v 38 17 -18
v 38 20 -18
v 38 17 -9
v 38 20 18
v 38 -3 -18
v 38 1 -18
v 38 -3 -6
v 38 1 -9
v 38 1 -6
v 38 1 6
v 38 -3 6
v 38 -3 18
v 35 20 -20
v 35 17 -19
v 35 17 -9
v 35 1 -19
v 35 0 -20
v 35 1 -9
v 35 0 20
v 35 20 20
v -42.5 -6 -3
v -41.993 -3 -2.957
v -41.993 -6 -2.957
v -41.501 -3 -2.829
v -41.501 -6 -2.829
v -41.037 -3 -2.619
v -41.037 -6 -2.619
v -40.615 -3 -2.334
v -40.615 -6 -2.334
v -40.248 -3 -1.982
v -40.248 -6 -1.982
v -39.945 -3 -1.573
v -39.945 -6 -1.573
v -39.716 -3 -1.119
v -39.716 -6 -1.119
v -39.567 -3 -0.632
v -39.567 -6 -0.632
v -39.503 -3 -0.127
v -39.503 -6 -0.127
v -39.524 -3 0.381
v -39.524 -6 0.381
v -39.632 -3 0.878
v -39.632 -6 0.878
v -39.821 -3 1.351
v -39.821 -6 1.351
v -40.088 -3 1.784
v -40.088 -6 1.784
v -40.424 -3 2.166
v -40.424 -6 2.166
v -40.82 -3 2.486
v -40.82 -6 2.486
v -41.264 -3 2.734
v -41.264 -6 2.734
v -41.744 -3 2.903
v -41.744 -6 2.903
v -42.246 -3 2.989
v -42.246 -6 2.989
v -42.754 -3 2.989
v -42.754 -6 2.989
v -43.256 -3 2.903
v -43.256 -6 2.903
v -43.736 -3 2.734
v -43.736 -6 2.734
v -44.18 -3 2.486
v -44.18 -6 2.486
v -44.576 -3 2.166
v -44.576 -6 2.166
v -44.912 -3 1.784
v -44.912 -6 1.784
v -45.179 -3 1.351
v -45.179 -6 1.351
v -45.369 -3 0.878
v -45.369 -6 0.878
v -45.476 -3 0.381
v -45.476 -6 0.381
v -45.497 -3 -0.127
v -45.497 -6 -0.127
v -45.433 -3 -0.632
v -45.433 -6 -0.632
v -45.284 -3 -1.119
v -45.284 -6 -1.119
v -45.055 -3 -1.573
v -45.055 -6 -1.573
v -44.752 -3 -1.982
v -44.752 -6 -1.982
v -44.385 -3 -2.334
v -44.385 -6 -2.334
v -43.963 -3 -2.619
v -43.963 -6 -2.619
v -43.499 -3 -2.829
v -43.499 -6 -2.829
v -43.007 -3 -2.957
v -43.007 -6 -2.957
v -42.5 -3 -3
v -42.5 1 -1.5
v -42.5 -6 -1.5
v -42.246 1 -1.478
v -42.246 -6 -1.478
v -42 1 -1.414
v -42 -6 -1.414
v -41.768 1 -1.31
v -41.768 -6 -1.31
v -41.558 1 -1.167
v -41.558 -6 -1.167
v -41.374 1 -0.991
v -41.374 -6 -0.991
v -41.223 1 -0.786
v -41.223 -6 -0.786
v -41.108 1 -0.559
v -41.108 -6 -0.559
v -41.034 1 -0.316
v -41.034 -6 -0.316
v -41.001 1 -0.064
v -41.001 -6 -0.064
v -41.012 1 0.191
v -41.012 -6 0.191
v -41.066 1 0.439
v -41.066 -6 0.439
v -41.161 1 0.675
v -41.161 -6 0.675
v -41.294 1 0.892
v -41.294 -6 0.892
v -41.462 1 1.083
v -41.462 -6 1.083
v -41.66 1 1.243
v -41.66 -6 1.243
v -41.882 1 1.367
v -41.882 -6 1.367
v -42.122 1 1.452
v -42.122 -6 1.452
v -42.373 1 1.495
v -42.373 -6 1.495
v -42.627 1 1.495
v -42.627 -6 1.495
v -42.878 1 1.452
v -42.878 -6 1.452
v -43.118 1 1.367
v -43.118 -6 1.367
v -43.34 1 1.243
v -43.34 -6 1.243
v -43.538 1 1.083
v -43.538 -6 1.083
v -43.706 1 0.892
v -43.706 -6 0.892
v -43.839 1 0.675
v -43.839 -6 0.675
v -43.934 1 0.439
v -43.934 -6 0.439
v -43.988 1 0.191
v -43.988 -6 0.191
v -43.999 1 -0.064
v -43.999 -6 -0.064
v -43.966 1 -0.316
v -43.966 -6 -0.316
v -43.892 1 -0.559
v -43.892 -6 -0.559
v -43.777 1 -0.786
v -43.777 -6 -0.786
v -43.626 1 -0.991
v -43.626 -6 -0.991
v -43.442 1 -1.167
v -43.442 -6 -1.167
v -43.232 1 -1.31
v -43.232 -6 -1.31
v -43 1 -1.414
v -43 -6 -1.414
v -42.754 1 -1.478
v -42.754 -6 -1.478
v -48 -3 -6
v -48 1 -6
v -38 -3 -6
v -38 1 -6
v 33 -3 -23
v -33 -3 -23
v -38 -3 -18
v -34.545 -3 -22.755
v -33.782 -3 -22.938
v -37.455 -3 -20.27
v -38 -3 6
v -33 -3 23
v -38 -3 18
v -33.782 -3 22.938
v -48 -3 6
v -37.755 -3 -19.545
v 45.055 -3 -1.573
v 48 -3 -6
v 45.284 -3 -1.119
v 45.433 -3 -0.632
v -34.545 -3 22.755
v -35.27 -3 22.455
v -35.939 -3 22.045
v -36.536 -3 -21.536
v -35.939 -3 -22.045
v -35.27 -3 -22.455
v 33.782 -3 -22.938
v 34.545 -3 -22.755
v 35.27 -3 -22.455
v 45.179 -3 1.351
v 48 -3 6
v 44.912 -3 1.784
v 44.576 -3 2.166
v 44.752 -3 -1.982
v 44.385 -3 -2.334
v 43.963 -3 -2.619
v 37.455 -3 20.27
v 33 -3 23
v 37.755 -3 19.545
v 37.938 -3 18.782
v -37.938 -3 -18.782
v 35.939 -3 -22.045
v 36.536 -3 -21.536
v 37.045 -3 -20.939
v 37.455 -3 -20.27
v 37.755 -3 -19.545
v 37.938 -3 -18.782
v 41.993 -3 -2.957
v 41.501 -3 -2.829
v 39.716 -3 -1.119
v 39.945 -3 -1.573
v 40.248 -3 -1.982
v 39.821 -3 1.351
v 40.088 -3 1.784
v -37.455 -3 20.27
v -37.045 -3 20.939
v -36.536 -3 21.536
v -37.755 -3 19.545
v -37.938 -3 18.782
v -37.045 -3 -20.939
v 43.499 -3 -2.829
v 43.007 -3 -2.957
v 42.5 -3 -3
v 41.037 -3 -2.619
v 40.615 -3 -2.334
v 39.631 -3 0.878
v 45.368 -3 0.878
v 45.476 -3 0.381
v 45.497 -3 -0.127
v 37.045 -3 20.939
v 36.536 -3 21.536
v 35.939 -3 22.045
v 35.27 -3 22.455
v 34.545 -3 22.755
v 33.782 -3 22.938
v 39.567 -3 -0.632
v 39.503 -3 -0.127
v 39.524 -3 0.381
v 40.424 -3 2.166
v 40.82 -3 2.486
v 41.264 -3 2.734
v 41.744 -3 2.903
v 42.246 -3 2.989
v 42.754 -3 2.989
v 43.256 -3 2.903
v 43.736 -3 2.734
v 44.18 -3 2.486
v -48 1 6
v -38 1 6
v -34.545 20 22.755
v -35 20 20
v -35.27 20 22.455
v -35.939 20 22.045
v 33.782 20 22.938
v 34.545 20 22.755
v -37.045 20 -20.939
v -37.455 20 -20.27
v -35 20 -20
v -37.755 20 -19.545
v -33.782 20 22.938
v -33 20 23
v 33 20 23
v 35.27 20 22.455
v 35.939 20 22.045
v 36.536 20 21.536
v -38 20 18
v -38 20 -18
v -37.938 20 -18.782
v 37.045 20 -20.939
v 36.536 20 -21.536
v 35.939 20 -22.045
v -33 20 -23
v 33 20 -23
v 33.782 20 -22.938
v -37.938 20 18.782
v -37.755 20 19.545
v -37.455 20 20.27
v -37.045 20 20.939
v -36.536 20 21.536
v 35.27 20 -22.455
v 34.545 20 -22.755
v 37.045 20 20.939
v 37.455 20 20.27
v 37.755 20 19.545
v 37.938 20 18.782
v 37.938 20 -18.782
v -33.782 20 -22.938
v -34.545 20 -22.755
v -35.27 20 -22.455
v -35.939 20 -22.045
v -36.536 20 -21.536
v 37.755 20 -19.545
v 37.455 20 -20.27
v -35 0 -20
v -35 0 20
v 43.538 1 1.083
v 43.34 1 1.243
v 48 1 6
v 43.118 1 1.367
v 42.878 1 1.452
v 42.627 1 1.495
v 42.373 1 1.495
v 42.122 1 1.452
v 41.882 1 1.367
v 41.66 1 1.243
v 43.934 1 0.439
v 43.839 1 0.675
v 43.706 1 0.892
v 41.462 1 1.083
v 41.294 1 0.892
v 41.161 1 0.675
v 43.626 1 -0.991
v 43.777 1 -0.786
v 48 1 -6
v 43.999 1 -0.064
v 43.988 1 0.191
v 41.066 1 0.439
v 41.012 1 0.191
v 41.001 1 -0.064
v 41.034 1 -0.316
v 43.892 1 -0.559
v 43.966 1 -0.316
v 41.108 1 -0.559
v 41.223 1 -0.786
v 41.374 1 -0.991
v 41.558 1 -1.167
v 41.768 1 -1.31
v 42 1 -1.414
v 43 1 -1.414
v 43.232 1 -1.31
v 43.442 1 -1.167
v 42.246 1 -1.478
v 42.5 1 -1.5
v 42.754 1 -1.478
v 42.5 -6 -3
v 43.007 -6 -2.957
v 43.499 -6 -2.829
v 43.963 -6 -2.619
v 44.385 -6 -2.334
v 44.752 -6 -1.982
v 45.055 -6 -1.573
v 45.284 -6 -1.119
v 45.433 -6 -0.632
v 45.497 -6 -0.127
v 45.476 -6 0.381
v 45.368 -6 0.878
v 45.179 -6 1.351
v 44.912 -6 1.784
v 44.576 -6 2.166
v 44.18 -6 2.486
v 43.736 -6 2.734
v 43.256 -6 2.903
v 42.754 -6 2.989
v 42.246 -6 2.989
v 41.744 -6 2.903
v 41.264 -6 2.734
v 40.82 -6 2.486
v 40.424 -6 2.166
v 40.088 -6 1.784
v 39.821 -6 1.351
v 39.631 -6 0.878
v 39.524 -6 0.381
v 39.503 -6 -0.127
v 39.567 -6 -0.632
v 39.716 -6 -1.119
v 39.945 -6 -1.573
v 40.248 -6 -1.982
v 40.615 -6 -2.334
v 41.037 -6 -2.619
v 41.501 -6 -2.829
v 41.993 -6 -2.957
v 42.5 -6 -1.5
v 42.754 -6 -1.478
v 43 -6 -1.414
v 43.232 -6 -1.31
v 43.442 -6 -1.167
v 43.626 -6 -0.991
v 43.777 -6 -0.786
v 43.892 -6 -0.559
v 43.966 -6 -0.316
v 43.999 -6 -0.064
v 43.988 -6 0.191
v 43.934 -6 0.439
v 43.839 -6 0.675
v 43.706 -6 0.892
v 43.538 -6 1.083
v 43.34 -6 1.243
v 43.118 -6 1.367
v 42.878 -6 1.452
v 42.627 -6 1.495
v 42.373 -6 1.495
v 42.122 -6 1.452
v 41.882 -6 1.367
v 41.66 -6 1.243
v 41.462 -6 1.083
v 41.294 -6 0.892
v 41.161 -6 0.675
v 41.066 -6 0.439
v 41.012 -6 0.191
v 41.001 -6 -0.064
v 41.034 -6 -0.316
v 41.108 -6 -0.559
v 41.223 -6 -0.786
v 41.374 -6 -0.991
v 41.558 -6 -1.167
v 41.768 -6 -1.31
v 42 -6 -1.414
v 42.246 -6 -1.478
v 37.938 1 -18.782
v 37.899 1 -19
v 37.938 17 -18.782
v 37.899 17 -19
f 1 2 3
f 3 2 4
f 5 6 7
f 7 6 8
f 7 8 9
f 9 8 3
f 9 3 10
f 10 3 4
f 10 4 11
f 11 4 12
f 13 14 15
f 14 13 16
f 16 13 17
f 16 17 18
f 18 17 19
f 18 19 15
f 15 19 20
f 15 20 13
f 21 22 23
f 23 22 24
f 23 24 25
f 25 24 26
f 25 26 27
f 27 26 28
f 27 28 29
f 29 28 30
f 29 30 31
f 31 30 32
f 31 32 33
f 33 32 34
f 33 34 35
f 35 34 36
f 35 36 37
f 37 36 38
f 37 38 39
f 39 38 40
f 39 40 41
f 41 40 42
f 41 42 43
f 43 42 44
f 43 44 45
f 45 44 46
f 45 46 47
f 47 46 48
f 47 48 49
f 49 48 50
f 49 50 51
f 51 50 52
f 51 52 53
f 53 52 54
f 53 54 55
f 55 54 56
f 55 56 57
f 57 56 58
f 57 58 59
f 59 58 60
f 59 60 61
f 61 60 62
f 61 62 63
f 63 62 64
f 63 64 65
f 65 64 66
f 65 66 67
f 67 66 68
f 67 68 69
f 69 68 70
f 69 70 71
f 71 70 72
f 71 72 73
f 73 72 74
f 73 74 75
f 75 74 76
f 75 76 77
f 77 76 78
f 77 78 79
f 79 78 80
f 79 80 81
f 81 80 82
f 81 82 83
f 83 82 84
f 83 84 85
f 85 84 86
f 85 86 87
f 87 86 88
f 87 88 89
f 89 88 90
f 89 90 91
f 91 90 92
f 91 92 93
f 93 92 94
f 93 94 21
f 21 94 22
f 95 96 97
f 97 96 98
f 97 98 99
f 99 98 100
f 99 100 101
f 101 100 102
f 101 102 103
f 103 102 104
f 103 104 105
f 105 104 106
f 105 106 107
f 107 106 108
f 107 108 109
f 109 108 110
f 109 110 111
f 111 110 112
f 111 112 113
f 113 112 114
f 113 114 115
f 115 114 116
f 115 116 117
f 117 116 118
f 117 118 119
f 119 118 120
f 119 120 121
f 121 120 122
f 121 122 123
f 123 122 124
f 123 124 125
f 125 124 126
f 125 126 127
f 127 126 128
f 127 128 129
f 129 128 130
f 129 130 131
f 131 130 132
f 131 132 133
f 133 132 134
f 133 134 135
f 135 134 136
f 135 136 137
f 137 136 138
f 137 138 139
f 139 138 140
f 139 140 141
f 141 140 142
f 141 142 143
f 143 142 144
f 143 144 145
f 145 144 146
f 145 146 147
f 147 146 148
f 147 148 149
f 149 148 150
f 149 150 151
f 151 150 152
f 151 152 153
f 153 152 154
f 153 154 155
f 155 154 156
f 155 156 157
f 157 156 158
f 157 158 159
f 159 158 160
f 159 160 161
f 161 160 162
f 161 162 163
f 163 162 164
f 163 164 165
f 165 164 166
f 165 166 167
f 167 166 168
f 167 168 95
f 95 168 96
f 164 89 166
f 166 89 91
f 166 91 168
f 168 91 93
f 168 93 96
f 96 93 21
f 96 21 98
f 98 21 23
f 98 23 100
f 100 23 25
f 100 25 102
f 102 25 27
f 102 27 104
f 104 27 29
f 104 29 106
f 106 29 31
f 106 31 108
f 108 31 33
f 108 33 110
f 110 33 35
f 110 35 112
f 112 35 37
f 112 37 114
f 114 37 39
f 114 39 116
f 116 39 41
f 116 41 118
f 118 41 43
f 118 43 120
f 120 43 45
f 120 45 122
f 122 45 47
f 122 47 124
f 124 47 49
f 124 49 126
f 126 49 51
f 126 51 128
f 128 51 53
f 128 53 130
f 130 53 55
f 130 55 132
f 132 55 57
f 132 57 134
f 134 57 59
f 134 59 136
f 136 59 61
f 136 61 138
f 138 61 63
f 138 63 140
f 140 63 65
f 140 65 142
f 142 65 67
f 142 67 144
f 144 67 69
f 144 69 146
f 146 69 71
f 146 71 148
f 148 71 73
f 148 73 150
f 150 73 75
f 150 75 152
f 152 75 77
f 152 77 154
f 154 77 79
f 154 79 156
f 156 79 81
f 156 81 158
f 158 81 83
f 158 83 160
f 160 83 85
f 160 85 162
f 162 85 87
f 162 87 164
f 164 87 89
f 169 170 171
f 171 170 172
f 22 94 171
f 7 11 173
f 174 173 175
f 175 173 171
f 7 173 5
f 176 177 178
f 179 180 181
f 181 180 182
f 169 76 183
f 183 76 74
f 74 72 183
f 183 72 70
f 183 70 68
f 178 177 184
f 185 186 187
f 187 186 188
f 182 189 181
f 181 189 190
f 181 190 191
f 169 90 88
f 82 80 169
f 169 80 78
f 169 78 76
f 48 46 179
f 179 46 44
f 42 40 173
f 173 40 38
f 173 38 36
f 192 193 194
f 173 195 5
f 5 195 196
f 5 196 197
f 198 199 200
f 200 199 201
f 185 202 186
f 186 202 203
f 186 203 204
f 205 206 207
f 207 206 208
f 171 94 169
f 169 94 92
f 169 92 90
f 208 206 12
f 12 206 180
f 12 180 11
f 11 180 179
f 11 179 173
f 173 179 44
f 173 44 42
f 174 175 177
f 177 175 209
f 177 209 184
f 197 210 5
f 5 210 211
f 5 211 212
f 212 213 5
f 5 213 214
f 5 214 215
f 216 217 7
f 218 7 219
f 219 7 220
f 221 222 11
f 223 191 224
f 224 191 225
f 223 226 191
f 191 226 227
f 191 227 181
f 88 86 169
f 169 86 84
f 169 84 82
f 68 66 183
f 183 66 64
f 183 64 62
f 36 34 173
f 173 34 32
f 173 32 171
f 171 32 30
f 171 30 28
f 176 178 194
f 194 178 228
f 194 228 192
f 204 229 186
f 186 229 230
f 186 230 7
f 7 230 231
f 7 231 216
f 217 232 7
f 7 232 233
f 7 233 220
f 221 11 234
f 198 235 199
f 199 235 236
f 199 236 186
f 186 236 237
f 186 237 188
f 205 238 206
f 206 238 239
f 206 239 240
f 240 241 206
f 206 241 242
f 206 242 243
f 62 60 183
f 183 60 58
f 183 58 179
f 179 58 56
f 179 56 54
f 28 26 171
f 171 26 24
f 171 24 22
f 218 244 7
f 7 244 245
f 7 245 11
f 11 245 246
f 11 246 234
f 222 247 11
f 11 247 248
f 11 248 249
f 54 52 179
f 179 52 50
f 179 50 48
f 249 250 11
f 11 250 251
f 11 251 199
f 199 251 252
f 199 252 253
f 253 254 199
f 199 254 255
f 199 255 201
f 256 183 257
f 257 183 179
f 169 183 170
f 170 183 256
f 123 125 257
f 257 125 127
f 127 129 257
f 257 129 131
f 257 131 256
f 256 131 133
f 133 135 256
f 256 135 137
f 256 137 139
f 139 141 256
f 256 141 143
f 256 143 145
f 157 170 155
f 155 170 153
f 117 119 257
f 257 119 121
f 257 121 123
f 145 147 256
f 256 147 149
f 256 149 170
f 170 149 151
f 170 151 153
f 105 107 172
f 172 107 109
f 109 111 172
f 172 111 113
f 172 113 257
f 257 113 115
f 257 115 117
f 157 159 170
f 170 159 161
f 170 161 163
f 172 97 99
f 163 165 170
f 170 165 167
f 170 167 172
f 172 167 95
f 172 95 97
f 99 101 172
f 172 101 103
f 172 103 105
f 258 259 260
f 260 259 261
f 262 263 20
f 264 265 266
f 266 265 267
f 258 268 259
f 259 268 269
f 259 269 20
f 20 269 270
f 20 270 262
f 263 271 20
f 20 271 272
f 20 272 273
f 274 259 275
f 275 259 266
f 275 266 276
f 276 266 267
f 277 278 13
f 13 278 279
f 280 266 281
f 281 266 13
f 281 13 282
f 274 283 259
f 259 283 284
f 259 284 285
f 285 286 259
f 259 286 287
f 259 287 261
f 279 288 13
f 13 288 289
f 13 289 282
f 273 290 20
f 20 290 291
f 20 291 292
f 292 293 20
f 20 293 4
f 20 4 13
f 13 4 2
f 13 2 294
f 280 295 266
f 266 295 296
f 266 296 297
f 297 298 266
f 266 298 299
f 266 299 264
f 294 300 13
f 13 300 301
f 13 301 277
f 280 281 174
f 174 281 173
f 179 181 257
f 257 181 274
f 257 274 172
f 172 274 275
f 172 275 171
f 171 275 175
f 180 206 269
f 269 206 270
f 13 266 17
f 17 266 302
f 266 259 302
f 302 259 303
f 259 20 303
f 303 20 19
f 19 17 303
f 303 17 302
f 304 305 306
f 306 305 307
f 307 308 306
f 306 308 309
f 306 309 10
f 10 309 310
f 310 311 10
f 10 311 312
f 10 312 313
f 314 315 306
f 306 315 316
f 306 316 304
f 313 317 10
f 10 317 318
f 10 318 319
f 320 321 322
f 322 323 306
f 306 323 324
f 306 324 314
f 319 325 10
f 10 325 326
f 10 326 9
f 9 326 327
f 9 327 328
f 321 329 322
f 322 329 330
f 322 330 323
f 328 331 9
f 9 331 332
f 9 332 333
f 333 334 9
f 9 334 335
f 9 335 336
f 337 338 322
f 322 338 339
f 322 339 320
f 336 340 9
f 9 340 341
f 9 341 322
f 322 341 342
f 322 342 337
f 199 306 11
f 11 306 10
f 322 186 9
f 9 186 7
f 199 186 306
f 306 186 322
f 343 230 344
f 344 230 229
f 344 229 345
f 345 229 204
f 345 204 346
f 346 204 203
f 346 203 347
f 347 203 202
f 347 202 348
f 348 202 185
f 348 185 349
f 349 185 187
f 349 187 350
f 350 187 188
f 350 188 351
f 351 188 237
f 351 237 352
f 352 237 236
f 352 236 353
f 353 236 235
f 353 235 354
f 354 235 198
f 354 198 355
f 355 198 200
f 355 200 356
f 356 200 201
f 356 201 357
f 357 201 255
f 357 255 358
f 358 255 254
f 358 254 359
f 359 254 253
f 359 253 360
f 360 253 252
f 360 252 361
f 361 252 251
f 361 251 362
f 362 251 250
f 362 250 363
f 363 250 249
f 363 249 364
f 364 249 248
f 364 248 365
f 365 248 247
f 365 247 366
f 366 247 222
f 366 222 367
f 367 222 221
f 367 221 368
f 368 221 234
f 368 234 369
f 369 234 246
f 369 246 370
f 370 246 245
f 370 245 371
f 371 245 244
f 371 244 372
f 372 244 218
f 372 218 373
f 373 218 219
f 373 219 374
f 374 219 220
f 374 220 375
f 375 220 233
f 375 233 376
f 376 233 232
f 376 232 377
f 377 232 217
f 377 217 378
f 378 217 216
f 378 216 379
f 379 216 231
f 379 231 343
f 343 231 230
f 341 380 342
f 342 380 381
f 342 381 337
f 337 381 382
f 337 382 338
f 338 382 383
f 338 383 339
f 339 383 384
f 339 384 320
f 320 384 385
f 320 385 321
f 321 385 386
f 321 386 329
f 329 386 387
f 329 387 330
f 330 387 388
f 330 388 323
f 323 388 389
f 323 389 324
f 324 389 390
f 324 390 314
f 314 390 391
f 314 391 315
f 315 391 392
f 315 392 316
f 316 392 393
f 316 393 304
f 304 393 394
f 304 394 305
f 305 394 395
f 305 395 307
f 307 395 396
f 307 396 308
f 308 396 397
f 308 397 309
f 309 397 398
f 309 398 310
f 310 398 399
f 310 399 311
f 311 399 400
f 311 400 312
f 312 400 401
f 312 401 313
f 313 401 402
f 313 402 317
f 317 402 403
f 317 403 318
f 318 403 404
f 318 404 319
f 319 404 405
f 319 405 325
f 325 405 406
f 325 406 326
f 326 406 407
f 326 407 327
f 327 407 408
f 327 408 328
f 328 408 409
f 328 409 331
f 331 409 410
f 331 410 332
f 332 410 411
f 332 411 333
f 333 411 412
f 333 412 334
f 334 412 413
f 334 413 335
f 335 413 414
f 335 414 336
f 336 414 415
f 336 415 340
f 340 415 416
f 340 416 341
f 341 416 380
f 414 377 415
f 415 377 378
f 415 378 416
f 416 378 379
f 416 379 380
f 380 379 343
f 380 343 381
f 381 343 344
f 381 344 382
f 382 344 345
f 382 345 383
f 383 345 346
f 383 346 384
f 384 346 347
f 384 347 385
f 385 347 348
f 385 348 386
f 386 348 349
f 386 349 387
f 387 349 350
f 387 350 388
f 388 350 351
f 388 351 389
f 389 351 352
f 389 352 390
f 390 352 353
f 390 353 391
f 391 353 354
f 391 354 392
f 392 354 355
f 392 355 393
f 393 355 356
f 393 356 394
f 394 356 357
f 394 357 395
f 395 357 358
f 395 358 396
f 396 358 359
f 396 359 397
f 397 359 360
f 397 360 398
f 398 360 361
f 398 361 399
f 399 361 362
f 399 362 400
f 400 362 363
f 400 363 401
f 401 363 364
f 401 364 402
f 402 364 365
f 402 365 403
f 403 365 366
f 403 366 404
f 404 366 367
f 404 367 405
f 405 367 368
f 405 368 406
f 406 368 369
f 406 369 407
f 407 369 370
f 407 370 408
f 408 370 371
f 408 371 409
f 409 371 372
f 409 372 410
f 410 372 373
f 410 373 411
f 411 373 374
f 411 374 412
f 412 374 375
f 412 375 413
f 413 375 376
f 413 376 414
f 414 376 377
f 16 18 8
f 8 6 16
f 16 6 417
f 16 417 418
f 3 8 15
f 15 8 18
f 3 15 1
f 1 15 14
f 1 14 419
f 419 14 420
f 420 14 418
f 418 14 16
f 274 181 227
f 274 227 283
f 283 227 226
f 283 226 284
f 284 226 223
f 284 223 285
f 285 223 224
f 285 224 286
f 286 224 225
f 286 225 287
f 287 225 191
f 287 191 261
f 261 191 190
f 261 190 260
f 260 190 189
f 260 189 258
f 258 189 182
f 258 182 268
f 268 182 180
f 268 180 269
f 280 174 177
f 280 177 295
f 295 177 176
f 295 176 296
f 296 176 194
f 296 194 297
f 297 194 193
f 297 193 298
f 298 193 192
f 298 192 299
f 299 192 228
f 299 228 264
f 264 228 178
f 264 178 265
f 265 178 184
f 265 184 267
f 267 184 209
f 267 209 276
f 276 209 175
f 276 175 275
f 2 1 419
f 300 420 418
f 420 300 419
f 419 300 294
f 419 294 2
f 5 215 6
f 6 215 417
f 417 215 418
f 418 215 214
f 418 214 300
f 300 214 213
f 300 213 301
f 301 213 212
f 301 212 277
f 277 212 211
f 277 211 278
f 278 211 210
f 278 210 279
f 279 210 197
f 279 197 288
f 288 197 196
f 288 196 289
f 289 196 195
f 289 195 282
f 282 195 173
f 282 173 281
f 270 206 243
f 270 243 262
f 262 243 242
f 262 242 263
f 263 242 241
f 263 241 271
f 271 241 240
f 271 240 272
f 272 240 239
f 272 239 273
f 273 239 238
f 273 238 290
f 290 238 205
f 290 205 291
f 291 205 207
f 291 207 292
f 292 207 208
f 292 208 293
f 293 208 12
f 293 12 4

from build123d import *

# Parameters (mm, degrees)
CROQUIS1_W                     = 76
CROQUIS1_H                     = 46
CROQUIS1_W_2                   = 70
CROQUIS1_H_2                   = 40
SALIENTE_EXTRUIR1_DEPTH        = 20
CROQUIS2_W                     = 76
CROQUIS2_H                     = 46
SALIENTE_EXTRUIR2_DEPTH        = 3
SALIENTE_EXTRUIR3_DEPTH        = 3
SALIENTE_EXTRUIR3_DEPTH_BACK   = 4
CROQUIS3_R                     = 3
CROQUIS3_R_2                   = 1.5
SALIENTE_EXTRUIR3_2_DEPTH      = 3
SALIENTE_EXTRUIR3_2_DEPTH_BACK = 4
CROQUIS4_W                     = 12
CROQUIS4_H                     = 4
SALIENTE_EXTRUIR4_DEPTH        = 10
CROQUIS5_W                     = 12
CROQUIS5_H                     = 4
SALIENTE_EXTRUIR5_DEPTH        = 10
CORTAR_EXTRUIR1_START          = -10
CROQUIS6_R                     = 1.5
CORTAR_EXTRUIR1_DEPTH          = 10
CROQUIS7_W                     = 10
CROQUIS7_H                     = 16
CORTAR_EXTRUIR2_DEPTH          = 10
REDONDEO1_R                    = 5


with BuildPart() as part:
    # Croquis1 → Saliente-Extruir1 (new body)
    with BuildSketch(Plane(origin=(0, 0, 0), x_dir=(1, 0, 0), z_dir=(0, 1, 0))):
        Rectangle(CROQUIS1_W, CROQUIS1_H)
        Rectangle(CROQUIS1_W_2, CROQUIS1_H_2, mode=Mode.SUBTRACT)
    extrude(amount=SALIENTE_EXTRUIR1_DEPTH)

    # Croquis2 → Saliente-Extruir2 (add)
    with BuildSketch(Plane.XZ):
        Rectangle(CROQUIS2_W, CROQUIS2_H)
    extrude(amount=SALIENTE_EXTRUIR2_DEPTH)



with BuildPart() as body_2:
    # Croquis3 → Saliente-Extruir3 (new, two sides: drawn at the far end of the back side and taken through both)
    with BuildSketch(Plane.XZ.offset(3).offset(-SALIENTE_EXTRUIR3_DEPTH_BACK)):
        with Locations(Location((42.5, 0, 0), (0, 0, 270))):
            Circle(CROQUIS3_R)
        with Locations(Location((42.5, 0, 0), (0, 0, 270))):
            Circle(CROQUIS3_R_2, mode=Mode.SUBTRACT)
    extrude(amount=SALIENTE_EXTRUIR3_DEPTH + SALIENTE_EXTRUIR3_DEPTH_BACK)


with BuildPart() as body_3:
    # Croquis3 → Saliente-Extruir3 2 (new, two sides: drawn at the far end of the back side and taken through both)
    with BuildSketch(Plane.XZ.offset(3).offset(-SALIENTE_EXTRUIR3_2_DEPTH_BACK)):
        with Locations(Location((-42.5, 0, 0), (0, 0, 270))):
            Circle(CROQUIS3_R)
        with Locations(Location((-42.5, 0, 0), (0, 0, 270))):
            Circle(CROQUIS3_R_2, mode=Mode.SUBTRACT)
    extrude(amount=SALIENTE_EXTRUIR3_2_DEPTH + SALIENTE_EXTRUIR3_2_DEPTH_BACK)


with BuildPart() as part_1:
    add(part.part)

    add(body_2.part)  # Saliente-Extruir4 merges body 2
    # Croquis4 → Saliente-Extruir4 (add)
    with BuildSketch(Plane(origin=(38, 0, 0), x_dir=(0, 0, -1), z_dir=(1, 0, 0))):
        with Locations((0, -1)):
            Rectangle(CROQUIS4_W, CROQUIS4_H)
    extrude(amount=SALIENTE_EXTRUIR4_DEPTH)


    add(body_3.part)  # Saliente-Extruir5 merges body 3
    # Croquis5 → Saliente-Extruir5 (add)
    with BuildSketch(Plane.ZY.offset(38)):
        with Locations((0, -1)):
            Rectangle(CROQUIS5_W, CROQUIS5_H)
    extrude(amount=SALIENTE_EXTRUIR5_DEPTH)

    # Croquis6 → Cortar-Extruir1 (cut)
    with BuildSketch(Plane.XZ.offset(3).offset(CORTAR_EXTRUIR1_START)):
        with Locations(Location((-42.5, 0, 0), (0, 0, 270))):
            Circle(CROQUIS6_R)
        with Locations(Location((42.5, 0, 0), (0, 0, 270))):
            Circle(CROQUIS6_R)
    extrude(amount=CORTAR_EXTRUIR1_DEPTH, mode=Mode.SUBTRACT)

    # Croquis7 → Cortar-Extruir2 (cut)
    with BuildSketch(Plane(origin=(38, 0, 0), x_dir=(0, 0, -1), z_dir=(1, 0, 0))):
        with Locations((14, 9)):
            Rectangle(CROQUIS7_W, CROQUIS7_H)
    extrude(amount=-CORTAR_EXTRUIR2_DEPTH, mode=Mode.SUBTRACT)

    # Redondeo1
    # the kernel refuses this fillet: 5 mm, written as the material it takes off along each edge
    with BuildSketch(Plane(origin=(-38, 32.5, 23), x_dir=(1, 0, 0), z_dir=(0, -1, 0)), Plane(origin=(-38, 32.5, -23), x_dir=(0, 0, 1), z_dir=(0, -1, 0)), Plane(origin=(38, -15.5, -23), x_dir=(0, 0, 1), z_dir=(0, 1, 0)), Plane(origin=(38, -15.5, 23), x_dir=(-1, 0, 0), z_dir=(0, 1, 0))) as redondeo1_piece_1:
        with BuildLine():
            CenterArc((REDONDEO1_R, -REDONDEO1_R), REDONDEO1_R, 90, 90)
            Line((0, -REDONDEO1_R), (0, 0))
            Line((0, 0), (REDONDEO1_R, 0))
        make_face()
    extrude(amount=48, mode=Mode.SUBTRACT)


solid = part_1.part
